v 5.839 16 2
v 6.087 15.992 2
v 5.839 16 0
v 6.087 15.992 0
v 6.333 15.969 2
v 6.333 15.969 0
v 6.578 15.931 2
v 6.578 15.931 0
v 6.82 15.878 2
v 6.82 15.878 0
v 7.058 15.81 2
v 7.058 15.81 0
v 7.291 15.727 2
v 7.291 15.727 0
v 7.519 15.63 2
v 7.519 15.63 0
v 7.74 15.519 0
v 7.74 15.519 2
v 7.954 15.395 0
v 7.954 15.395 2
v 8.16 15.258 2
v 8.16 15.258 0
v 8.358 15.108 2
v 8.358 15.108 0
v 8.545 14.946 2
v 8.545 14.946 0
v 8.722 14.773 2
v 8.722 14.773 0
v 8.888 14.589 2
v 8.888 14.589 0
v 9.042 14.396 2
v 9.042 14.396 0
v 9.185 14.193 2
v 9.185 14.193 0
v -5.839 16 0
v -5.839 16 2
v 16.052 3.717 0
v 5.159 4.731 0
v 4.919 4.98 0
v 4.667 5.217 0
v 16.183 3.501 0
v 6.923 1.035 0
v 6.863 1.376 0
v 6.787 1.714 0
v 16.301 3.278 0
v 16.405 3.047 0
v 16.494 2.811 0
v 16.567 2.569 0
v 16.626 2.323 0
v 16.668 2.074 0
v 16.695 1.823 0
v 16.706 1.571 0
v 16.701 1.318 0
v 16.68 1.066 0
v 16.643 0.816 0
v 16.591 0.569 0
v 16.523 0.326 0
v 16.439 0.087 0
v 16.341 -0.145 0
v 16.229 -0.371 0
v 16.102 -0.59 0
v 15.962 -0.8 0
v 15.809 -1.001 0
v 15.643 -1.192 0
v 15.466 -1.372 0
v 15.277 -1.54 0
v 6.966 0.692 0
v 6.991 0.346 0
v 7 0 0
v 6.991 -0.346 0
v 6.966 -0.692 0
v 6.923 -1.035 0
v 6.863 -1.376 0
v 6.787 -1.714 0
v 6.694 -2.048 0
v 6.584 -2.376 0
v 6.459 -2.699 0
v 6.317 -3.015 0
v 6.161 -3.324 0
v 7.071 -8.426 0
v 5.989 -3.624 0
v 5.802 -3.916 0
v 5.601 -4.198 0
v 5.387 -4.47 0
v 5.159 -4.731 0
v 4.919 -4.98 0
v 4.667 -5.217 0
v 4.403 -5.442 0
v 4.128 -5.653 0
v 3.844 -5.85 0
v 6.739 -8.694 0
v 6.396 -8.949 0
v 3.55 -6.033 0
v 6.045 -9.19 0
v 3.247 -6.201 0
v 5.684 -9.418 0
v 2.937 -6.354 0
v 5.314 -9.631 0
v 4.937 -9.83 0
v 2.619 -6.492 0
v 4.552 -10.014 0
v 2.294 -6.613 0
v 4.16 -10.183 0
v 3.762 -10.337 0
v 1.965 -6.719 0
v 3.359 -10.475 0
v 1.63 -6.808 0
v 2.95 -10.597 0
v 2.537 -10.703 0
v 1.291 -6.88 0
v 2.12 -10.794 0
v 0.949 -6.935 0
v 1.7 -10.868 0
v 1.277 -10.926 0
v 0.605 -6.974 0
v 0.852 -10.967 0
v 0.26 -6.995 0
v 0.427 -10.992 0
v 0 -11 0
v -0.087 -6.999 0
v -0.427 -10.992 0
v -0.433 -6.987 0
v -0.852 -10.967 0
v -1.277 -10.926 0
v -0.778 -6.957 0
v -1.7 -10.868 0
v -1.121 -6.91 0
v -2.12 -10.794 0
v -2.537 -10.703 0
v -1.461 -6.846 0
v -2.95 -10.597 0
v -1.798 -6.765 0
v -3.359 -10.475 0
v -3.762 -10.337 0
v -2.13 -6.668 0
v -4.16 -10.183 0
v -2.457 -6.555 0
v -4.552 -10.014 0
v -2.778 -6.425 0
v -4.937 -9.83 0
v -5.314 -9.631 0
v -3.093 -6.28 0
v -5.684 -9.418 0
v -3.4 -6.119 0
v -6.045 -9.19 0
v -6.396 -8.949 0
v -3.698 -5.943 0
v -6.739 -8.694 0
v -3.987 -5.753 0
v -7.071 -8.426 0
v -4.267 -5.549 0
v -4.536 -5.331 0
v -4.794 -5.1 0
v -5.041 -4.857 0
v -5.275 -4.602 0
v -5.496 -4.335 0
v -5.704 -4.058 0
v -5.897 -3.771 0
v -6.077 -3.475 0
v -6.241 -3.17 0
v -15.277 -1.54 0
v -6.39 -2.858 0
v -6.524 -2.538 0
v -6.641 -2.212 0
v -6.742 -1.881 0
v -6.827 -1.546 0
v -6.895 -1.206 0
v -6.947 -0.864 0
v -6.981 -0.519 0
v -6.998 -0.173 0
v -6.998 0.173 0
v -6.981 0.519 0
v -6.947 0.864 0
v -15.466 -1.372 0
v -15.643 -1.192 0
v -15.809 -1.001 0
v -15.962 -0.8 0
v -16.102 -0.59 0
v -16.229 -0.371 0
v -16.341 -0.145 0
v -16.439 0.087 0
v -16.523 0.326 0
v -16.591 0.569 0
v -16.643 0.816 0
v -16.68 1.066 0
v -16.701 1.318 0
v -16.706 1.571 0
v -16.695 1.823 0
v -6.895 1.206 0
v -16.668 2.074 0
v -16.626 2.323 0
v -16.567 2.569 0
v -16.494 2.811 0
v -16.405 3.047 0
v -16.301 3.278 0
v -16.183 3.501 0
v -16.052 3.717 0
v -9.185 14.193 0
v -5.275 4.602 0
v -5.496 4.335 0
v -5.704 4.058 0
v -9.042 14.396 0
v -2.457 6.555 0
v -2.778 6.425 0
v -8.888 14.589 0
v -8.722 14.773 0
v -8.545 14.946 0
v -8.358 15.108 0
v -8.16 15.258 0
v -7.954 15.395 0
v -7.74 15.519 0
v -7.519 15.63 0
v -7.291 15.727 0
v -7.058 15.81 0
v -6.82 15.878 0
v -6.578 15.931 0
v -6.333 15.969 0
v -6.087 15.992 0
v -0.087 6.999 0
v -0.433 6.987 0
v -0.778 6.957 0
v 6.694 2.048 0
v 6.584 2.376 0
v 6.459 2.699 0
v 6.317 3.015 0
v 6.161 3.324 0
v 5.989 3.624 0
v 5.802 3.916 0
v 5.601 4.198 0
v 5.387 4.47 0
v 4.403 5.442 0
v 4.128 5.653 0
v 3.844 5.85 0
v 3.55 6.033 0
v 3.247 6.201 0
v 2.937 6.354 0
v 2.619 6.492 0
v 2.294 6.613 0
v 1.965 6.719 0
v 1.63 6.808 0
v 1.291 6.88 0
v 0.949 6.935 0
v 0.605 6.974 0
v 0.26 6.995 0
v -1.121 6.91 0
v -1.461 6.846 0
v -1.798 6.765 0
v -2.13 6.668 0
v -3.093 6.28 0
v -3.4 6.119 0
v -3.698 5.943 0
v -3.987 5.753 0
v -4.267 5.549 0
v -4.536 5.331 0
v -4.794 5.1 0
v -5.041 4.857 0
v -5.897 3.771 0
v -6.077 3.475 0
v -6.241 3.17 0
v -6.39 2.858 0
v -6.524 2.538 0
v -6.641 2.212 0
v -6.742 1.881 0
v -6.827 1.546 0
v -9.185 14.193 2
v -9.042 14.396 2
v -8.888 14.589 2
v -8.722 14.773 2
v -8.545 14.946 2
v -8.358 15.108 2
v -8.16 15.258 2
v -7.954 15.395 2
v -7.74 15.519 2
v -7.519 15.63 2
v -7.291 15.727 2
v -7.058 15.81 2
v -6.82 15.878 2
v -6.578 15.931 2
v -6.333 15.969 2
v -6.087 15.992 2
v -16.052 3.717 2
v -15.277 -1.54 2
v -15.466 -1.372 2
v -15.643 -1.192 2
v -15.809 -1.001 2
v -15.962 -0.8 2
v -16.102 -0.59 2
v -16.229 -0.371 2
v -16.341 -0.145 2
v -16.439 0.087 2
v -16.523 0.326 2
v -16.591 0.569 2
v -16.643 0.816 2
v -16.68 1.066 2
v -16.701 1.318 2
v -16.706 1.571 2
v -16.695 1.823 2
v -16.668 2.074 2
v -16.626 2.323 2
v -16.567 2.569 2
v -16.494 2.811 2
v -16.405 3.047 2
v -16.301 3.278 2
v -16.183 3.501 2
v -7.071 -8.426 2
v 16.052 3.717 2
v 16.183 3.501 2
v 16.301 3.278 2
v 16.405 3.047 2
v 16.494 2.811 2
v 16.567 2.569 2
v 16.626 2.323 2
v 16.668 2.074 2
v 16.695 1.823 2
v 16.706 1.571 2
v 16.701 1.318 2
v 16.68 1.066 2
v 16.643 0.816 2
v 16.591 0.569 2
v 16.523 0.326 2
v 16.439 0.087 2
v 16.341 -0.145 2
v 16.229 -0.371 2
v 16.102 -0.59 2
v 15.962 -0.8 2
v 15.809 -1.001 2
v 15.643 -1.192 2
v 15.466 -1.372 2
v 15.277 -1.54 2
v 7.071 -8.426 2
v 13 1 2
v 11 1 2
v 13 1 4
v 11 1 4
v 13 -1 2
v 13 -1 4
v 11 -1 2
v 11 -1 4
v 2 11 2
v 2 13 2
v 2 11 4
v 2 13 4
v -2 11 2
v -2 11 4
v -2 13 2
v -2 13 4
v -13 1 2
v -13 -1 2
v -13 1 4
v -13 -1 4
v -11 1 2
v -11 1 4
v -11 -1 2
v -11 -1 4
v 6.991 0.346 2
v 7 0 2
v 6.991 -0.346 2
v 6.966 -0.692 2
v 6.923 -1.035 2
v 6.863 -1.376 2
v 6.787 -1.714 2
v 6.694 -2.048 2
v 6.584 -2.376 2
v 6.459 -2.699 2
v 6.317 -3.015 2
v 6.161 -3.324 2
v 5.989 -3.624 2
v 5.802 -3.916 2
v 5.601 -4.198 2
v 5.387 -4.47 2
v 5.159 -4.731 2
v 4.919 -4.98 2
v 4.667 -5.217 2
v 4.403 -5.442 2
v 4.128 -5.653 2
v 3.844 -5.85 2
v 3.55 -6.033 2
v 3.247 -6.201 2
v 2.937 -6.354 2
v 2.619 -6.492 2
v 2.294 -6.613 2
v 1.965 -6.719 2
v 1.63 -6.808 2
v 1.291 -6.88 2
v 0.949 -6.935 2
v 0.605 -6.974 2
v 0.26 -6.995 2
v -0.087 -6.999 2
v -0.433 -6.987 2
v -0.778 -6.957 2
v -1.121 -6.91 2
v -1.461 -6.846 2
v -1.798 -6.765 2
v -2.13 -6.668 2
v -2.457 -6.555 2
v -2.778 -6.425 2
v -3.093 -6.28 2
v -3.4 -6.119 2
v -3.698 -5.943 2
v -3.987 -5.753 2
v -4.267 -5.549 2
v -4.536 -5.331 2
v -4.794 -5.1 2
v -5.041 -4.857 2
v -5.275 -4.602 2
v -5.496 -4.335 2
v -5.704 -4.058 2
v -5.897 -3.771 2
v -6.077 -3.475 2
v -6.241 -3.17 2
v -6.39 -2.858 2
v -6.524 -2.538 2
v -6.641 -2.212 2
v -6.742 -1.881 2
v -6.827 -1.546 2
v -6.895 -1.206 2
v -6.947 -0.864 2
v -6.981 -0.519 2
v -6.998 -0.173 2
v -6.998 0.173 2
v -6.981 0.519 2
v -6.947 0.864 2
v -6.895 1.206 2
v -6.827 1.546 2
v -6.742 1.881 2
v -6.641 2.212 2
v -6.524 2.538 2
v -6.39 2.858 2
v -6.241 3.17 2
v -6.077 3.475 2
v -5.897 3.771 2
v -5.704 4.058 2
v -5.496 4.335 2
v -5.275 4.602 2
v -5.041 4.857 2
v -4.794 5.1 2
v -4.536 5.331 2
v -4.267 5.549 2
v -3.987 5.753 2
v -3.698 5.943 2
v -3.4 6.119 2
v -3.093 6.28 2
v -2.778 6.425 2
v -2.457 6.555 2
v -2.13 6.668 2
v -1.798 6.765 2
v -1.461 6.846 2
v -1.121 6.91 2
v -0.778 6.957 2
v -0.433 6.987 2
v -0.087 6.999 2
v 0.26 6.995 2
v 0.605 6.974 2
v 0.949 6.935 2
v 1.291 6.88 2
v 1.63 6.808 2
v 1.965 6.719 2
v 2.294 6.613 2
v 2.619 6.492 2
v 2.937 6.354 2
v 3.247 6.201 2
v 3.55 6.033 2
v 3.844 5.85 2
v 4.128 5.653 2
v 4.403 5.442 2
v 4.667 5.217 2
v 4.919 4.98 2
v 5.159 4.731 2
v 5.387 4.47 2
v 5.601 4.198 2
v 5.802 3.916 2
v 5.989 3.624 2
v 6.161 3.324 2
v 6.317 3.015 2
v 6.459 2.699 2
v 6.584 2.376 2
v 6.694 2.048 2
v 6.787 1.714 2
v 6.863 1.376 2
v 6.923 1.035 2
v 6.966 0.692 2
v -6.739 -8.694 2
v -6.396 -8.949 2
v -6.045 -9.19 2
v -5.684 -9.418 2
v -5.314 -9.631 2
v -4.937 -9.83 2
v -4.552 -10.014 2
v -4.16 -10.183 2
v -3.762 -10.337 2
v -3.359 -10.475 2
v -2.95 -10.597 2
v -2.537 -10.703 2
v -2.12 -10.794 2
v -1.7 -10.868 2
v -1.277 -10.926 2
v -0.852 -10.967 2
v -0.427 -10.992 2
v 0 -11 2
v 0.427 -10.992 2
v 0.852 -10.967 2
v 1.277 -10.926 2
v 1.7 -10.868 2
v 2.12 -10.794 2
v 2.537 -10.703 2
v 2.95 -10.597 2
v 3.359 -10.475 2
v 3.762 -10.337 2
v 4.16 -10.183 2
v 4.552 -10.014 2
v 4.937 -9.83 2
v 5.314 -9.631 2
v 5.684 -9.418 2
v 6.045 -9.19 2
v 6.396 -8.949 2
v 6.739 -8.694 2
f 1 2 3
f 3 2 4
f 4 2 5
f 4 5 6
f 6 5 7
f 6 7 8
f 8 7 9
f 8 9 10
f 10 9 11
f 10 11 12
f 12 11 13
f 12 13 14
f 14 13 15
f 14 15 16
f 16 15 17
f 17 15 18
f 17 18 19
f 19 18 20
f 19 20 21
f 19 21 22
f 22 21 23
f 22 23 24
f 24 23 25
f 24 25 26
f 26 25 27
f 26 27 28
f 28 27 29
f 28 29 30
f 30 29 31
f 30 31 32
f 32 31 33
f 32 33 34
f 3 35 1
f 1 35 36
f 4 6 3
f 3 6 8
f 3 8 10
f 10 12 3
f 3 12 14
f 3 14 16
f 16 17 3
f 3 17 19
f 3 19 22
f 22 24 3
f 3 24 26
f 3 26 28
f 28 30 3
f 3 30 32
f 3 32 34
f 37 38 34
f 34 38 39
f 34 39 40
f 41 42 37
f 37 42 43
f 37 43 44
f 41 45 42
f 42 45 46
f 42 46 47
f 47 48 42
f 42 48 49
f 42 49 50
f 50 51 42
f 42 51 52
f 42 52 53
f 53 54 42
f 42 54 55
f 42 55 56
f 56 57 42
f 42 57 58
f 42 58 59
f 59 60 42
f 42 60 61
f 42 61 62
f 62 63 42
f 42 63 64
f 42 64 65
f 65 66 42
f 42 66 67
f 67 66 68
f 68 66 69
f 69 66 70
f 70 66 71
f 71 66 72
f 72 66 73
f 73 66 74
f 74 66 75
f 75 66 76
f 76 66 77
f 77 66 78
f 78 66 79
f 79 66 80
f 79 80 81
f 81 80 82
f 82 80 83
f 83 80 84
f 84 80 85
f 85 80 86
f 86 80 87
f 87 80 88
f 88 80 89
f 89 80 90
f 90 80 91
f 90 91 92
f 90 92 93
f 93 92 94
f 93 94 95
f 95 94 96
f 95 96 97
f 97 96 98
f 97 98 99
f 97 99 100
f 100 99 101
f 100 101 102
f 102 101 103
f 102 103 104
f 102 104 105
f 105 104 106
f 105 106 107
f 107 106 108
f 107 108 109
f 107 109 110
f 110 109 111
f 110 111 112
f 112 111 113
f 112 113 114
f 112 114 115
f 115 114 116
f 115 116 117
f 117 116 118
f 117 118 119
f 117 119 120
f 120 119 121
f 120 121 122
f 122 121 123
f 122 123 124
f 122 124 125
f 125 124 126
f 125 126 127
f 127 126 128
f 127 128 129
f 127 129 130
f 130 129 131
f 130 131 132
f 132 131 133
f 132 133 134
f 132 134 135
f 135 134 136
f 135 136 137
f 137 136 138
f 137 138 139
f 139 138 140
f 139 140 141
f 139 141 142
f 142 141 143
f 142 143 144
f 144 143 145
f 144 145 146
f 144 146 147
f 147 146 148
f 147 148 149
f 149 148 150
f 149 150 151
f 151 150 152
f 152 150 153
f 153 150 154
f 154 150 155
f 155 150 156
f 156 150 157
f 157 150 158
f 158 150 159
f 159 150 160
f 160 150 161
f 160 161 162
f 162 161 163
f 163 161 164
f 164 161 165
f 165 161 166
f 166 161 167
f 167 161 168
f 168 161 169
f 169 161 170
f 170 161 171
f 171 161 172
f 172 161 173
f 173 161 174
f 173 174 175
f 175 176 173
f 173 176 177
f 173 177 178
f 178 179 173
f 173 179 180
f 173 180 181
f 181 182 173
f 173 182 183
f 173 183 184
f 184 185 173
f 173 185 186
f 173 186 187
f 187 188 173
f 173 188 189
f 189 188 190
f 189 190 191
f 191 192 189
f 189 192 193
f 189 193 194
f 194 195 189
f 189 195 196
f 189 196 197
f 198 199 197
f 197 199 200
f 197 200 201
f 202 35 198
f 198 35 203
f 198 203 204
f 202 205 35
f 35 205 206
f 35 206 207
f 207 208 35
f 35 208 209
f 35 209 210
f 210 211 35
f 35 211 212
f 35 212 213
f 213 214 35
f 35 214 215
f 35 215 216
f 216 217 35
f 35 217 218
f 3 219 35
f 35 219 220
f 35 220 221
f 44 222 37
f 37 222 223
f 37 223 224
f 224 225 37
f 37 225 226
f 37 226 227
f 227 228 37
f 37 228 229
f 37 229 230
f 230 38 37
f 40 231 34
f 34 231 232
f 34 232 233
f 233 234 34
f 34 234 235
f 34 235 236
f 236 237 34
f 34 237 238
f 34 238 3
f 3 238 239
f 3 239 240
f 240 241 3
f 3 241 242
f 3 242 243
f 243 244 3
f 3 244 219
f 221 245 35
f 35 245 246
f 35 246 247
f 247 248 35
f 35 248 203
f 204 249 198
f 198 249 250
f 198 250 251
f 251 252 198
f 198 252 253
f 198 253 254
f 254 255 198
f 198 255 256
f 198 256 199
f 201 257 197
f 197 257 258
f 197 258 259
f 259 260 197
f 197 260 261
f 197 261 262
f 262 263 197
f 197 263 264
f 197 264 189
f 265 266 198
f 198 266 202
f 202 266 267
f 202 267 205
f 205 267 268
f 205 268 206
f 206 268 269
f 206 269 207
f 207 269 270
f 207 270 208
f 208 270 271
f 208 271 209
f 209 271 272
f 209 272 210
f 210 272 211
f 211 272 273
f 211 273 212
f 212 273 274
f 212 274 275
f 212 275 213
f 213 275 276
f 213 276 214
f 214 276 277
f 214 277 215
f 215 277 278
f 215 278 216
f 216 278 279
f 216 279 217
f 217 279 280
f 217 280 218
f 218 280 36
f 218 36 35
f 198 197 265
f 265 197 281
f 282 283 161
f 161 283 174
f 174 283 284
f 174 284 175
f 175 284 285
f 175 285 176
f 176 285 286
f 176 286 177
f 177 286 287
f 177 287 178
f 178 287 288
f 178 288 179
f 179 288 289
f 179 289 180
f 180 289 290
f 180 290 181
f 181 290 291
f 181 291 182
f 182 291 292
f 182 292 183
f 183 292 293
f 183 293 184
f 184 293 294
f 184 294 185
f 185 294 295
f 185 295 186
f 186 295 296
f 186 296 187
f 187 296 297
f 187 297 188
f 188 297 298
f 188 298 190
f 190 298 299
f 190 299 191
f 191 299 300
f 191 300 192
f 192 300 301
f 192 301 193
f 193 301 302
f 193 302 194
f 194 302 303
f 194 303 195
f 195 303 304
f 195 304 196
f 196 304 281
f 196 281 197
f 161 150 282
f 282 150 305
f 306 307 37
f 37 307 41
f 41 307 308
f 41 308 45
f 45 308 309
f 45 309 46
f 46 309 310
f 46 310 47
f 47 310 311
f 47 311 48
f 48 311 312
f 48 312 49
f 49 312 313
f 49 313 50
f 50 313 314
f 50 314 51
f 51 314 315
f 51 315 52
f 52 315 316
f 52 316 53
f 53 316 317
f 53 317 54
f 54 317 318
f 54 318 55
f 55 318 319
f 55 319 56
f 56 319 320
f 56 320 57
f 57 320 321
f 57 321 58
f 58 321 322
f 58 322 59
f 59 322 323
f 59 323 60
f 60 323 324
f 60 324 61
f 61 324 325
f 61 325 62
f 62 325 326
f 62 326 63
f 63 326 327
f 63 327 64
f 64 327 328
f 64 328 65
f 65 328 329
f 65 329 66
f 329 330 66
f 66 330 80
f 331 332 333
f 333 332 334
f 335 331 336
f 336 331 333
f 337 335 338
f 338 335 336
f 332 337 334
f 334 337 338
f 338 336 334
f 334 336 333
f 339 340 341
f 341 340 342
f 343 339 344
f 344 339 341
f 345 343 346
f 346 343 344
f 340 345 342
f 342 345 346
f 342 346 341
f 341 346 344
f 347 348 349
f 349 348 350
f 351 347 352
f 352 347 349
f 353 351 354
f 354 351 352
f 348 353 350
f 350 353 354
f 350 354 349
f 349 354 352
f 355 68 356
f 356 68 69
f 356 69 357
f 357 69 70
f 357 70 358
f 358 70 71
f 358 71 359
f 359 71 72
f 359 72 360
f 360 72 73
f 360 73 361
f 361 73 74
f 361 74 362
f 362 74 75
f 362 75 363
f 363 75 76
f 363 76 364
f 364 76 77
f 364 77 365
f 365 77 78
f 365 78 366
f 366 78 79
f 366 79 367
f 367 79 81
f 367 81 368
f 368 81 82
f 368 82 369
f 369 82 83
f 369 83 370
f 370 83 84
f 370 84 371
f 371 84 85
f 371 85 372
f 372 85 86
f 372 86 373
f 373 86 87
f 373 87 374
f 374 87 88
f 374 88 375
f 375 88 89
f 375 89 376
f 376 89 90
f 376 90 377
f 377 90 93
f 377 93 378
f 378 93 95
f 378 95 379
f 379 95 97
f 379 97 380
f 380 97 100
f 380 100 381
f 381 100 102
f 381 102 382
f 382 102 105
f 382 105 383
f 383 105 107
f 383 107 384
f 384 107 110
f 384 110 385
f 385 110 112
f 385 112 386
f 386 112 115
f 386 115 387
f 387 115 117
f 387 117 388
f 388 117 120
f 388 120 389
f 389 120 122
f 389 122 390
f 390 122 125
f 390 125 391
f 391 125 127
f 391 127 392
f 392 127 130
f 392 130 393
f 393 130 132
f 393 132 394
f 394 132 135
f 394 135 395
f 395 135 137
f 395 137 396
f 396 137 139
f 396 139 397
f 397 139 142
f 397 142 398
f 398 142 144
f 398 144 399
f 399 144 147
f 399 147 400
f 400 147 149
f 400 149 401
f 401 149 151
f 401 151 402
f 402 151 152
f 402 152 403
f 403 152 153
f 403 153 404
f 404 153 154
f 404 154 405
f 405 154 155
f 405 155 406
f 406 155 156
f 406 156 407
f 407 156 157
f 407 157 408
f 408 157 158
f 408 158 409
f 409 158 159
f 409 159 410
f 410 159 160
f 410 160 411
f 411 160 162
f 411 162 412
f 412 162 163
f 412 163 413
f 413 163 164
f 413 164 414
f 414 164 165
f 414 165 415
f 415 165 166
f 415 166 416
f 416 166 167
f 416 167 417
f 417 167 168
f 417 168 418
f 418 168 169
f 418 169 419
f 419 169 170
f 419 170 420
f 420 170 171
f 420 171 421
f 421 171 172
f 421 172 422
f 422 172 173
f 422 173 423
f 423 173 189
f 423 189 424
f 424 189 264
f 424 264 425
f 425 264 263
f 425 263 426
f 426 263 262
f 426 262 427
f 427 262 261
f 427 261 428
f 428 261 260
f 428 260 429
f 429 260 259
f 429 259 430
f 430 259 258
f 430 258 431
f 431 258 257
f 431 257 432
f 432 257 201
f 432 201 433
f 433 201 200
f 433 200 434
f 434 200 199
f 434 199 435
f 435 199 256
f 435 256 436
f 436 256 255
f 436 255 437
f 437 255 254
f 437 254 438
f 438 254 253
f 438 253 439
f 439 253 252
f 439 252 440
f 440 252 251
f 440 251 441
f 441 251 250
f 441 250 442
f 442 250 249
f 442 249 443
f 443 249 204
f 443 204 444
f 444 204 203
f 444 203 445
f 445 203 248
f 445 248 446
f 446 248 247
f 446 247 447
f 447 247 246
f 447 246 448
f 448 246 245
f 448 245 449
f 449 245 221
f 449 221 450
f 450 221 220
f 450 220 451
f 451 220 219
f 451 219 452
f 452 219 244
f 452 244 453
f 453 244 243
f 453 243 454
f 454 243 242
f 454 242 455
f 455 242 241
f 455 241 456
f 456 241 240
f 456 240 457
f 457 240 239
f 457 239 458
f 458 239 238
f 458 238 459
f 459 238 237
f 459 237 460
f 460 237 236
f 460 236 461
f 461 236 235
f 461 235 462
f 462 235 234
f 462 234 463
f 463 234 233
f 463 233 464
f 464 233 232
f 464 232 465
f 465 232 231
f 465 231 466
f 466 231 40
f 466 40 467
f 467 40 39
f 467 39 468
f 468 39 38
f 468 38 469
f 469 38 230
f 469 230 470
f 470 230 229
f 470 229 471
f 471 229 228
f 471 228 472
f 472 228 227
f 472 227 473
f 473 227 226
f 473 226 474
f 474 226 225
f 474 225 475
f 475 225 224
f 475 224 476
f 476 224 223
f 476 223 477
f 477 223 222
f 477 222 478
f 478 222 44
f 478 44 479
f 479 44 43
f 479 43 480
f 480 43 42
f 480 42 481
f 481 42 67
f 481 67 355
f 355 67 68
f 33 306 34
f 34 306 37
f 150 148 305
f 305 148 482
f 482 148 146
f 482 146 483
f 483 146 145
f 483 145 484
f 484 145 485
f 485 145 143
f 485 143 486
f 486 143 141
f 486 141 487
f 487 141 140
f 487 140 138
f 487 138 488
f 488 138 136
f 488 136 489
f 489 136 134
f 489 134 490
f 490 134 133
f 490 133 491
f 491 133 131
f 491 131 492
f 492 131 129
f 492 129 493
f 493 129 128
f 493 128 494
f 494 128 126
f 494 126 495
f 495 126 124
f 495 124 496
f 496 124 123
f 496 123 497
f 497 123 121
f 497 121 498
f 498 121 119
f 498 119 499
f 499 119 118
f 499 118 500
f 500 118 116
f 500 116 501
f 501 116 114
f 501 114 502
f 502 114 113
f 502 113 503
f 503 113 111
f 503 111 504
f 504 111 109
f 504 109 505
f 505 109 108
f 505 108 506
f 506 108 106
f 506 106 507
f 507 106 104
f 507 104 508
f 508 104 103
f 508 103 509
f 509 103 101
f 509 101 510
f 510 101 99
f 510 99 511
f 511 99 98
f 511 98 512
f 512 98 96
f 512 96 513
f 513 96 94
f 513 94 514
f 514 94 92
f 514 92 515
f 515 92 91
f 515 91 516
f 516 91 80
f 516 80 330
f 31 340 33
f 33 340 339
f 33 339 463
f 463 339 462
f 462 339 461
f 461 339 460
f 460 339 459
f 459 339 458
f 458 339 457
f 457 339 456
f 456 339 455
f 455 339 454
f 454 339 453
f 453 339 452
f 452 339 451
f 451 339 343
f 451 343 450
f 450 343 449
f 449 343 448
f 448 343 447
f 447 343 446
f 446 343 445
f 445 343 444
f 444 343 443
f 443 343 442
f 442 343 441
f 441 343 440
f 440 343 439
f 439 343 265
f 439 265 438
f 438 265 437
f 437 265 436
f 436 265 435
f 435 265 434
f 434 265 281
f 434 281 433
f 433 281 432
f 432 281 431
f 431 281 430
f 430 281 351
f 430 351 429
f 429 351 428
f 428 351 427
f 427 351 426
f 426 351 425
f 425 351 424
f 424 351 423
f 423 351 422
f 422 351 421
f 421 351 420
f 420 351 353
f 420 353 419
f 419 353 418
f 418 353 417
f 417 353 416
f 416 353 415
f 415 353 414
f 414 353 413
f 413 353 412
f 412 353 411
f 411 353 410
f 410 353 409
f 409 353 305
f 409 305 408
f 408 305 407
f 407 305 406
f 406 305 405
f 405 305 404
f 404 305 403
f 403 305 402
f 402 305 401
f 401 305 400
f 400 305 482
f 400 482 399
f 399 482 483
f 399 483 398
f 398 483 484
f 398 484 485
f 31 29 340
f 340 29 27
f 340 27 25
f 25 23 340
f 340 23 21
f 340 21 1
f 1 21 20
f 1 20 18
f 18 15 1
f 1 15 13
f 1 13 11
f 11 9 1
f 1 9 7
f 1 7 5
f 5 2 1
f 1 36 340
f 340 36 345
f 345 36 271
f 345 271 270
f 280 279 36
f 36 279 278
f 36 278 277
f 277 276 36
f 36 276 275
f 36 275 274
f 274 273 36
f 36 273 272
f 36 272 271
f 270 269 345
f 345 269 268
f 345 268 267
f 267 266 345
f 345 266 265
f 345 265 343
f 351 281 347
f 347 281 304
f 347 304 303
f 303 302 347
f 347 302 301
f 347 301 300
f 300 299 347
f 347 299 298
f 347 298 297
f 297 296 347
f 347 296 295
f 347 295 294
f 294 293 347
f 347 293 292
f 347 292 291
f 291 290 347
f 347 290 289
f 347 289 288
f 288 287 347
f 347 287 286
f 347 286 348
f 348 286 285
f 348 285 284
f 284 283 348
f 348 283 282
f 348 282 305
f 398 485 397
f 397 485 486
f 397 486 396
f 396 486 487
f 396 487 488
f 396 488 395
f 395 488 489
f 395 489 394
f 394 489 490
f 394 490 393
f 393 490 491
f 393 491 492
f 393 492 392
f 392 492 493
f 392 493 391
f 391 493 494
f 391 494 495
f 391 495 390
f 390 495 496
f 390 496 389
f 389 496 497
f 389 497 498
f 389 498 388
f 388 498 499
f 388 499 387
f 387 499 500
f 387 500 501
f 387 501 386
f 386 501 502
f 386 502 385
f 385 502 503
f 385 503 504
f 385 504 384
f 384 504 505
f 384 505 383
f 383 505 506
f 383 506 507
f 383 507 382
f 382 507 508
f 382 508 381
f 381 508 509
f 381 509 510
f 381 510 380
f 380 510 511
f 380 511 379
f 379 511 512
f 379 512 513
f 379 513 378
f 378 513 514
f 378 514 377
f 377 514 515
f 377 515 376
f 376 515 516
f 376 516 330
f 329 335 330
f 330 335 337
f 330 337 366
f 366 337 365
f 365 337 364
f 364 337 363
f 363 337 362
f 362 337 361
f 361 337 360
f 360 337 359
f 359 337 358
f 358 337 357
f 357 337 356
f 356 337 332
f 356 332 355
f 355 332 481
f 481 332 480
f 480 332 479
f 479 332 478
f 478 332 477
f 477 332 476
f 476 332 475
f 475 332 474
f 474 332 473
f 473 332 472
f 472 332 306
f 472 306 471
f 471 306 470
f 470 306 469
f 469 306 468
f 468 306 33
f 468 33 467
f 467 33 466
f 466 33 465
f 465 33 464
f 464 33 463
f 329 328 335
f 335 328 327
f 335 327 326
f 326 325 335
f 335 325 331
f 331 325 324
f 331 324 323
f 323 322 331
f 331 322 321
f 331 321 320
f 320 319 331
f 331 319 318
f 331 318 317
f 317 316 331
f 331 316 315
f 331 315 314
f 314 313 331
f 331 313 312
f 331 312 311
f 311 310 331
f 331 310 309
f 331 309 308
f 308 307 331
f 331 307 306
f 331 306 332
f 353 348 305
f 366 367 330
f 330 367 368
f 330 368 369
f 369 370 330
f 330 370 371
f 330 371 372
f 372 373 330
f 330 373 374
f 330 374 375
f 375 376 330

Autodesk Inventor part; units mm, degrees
ref_plane "YZ Plane" through (0, 0, 0) normal (1, 0, 0) x (0, 1, 0)
ref_plane "XZ Plane" through (0, 0, 0) normal (0, 1, 0) x (-1, 0, 0)
ref_plane "XY Plane" through (0, 0, 0) normal (0, 0, 1) x (1, 0, 0)
sketch "Sketch1" plane through (0, 0, 0) normal (0, 0, 1) x (1, 0, 0)
  circle A0 centre (0, 0) radius 7
  circle A1 centre (0, 0) radius 11
  line L0 (-31.215, 0) -> (-15, 0) construction
  line L1 (-11.7494, 0) -> (27.9854, 0) construction
  line L2 (7.0707, -8.4265) -> (18, 0.7443)
  line L3 (18, 0.7443) -> (8, 16)
  line L4 (8, 16) -> (0, 16)
  line L5 (0, -17.2006) -> (0, 31.2913) construction
  line L6 (-7.0707, -8.4265) -> (-18, 0.7443)
  line L7 (-18, 0.7443) -> (-8, 16)
  line L8 (-8, 16) -> (0, 16)
  dimension "d12" = 22
  dimension "d11" = 14
  dimension "d13" = 50
  dimension "d14" = 18
  dimension "d15" = 16
  dimension "d16" = 8
extrude "Extrusion1" add sketch "Sketch1" along normal blind 2
sketch "Sketch2" plane through (0, 0, 2) normal (0, 0, 1) x (1, 0, 0)
  arc A0 (-7.0707, -8.4265) -> (7.0707, -8.4265) centre (0, 0) ccw projected
  line L0 (7.0707, -8.4265) -> (18, 0.7443) projected
  line L1 (18, 0.7443) -> (8, 16) projected
  line L2 (8, 16) -> (-8, 16) projected
  line L3 (-8, 16) -> (-18, 0.7443) projected
  line L4 (-18, 0.7443) -> (-7.0707, -8.4265) projected
  circle A1 centre (0, 0) radius 7 projected
  line L5 (11, -1) -> (13, -1)
  line L6 (13, -1) -> (13, 1)
  line L7 (13, 1) -> (11, 1)
  line L8 (11, 1) -> (11, -1)
  line L9 (11, -1) -> (13, 1) construction
  line L10 (13, -1) -> (11, 1) construction
  line L11 (-2, 13) -> (2, 13)
  line L12 (2, 13) -> (2, 11)
  line L13 (2, 11) -> (-2, 11)
  line L14 (-2, 11) -> (-2, 13)
  line L15 (-2, 13) -> (2, 11) construction
  line L16 (2, 13) -> (-2, 11) construction
  line L17 (0, 16) -> (0, -7) construction
  line L18 (-11, -1) -> (-13, -1)
  line L19 (-13, -1) -> (-13, 1)
  line L20 (-13, 1) -> (-11, 1)
  line L21 (-11, 1) -> (-11, -1)
  line L22 (-11, -1) -> (-13, 1) construction
  line L23 (-13, -1) -> (-11, 1) construction
  point P0 (12, 0)
  point P1 (0, 12)
  point P2 (12, 0)
  point P3 (0, 12)
  point P4 (0, 12)
  point P5 (-12, 0)
  point P6 (-12, 0)
  dimension "d18" = 2
  dimension "d19" = 2
  dimension "d20" = 4
  dimension "d21" = 2
  dimension "d22" = 12
  dimension "d23" = 12
extrude "Extrusion2" add sketch "Sketch2" along normal blind 2 contours L8 L7 L6 L5 | L11 L12 L13 L14 | L18 L19 L20 L21
fillet "Fillet1" radius 4 4 edges at (18, 0.7443, 1) (-18, 0.7443, 1) (-8, 16, 1) (8, 16, 1)
properties part number "lager opvulling voor lijm"
